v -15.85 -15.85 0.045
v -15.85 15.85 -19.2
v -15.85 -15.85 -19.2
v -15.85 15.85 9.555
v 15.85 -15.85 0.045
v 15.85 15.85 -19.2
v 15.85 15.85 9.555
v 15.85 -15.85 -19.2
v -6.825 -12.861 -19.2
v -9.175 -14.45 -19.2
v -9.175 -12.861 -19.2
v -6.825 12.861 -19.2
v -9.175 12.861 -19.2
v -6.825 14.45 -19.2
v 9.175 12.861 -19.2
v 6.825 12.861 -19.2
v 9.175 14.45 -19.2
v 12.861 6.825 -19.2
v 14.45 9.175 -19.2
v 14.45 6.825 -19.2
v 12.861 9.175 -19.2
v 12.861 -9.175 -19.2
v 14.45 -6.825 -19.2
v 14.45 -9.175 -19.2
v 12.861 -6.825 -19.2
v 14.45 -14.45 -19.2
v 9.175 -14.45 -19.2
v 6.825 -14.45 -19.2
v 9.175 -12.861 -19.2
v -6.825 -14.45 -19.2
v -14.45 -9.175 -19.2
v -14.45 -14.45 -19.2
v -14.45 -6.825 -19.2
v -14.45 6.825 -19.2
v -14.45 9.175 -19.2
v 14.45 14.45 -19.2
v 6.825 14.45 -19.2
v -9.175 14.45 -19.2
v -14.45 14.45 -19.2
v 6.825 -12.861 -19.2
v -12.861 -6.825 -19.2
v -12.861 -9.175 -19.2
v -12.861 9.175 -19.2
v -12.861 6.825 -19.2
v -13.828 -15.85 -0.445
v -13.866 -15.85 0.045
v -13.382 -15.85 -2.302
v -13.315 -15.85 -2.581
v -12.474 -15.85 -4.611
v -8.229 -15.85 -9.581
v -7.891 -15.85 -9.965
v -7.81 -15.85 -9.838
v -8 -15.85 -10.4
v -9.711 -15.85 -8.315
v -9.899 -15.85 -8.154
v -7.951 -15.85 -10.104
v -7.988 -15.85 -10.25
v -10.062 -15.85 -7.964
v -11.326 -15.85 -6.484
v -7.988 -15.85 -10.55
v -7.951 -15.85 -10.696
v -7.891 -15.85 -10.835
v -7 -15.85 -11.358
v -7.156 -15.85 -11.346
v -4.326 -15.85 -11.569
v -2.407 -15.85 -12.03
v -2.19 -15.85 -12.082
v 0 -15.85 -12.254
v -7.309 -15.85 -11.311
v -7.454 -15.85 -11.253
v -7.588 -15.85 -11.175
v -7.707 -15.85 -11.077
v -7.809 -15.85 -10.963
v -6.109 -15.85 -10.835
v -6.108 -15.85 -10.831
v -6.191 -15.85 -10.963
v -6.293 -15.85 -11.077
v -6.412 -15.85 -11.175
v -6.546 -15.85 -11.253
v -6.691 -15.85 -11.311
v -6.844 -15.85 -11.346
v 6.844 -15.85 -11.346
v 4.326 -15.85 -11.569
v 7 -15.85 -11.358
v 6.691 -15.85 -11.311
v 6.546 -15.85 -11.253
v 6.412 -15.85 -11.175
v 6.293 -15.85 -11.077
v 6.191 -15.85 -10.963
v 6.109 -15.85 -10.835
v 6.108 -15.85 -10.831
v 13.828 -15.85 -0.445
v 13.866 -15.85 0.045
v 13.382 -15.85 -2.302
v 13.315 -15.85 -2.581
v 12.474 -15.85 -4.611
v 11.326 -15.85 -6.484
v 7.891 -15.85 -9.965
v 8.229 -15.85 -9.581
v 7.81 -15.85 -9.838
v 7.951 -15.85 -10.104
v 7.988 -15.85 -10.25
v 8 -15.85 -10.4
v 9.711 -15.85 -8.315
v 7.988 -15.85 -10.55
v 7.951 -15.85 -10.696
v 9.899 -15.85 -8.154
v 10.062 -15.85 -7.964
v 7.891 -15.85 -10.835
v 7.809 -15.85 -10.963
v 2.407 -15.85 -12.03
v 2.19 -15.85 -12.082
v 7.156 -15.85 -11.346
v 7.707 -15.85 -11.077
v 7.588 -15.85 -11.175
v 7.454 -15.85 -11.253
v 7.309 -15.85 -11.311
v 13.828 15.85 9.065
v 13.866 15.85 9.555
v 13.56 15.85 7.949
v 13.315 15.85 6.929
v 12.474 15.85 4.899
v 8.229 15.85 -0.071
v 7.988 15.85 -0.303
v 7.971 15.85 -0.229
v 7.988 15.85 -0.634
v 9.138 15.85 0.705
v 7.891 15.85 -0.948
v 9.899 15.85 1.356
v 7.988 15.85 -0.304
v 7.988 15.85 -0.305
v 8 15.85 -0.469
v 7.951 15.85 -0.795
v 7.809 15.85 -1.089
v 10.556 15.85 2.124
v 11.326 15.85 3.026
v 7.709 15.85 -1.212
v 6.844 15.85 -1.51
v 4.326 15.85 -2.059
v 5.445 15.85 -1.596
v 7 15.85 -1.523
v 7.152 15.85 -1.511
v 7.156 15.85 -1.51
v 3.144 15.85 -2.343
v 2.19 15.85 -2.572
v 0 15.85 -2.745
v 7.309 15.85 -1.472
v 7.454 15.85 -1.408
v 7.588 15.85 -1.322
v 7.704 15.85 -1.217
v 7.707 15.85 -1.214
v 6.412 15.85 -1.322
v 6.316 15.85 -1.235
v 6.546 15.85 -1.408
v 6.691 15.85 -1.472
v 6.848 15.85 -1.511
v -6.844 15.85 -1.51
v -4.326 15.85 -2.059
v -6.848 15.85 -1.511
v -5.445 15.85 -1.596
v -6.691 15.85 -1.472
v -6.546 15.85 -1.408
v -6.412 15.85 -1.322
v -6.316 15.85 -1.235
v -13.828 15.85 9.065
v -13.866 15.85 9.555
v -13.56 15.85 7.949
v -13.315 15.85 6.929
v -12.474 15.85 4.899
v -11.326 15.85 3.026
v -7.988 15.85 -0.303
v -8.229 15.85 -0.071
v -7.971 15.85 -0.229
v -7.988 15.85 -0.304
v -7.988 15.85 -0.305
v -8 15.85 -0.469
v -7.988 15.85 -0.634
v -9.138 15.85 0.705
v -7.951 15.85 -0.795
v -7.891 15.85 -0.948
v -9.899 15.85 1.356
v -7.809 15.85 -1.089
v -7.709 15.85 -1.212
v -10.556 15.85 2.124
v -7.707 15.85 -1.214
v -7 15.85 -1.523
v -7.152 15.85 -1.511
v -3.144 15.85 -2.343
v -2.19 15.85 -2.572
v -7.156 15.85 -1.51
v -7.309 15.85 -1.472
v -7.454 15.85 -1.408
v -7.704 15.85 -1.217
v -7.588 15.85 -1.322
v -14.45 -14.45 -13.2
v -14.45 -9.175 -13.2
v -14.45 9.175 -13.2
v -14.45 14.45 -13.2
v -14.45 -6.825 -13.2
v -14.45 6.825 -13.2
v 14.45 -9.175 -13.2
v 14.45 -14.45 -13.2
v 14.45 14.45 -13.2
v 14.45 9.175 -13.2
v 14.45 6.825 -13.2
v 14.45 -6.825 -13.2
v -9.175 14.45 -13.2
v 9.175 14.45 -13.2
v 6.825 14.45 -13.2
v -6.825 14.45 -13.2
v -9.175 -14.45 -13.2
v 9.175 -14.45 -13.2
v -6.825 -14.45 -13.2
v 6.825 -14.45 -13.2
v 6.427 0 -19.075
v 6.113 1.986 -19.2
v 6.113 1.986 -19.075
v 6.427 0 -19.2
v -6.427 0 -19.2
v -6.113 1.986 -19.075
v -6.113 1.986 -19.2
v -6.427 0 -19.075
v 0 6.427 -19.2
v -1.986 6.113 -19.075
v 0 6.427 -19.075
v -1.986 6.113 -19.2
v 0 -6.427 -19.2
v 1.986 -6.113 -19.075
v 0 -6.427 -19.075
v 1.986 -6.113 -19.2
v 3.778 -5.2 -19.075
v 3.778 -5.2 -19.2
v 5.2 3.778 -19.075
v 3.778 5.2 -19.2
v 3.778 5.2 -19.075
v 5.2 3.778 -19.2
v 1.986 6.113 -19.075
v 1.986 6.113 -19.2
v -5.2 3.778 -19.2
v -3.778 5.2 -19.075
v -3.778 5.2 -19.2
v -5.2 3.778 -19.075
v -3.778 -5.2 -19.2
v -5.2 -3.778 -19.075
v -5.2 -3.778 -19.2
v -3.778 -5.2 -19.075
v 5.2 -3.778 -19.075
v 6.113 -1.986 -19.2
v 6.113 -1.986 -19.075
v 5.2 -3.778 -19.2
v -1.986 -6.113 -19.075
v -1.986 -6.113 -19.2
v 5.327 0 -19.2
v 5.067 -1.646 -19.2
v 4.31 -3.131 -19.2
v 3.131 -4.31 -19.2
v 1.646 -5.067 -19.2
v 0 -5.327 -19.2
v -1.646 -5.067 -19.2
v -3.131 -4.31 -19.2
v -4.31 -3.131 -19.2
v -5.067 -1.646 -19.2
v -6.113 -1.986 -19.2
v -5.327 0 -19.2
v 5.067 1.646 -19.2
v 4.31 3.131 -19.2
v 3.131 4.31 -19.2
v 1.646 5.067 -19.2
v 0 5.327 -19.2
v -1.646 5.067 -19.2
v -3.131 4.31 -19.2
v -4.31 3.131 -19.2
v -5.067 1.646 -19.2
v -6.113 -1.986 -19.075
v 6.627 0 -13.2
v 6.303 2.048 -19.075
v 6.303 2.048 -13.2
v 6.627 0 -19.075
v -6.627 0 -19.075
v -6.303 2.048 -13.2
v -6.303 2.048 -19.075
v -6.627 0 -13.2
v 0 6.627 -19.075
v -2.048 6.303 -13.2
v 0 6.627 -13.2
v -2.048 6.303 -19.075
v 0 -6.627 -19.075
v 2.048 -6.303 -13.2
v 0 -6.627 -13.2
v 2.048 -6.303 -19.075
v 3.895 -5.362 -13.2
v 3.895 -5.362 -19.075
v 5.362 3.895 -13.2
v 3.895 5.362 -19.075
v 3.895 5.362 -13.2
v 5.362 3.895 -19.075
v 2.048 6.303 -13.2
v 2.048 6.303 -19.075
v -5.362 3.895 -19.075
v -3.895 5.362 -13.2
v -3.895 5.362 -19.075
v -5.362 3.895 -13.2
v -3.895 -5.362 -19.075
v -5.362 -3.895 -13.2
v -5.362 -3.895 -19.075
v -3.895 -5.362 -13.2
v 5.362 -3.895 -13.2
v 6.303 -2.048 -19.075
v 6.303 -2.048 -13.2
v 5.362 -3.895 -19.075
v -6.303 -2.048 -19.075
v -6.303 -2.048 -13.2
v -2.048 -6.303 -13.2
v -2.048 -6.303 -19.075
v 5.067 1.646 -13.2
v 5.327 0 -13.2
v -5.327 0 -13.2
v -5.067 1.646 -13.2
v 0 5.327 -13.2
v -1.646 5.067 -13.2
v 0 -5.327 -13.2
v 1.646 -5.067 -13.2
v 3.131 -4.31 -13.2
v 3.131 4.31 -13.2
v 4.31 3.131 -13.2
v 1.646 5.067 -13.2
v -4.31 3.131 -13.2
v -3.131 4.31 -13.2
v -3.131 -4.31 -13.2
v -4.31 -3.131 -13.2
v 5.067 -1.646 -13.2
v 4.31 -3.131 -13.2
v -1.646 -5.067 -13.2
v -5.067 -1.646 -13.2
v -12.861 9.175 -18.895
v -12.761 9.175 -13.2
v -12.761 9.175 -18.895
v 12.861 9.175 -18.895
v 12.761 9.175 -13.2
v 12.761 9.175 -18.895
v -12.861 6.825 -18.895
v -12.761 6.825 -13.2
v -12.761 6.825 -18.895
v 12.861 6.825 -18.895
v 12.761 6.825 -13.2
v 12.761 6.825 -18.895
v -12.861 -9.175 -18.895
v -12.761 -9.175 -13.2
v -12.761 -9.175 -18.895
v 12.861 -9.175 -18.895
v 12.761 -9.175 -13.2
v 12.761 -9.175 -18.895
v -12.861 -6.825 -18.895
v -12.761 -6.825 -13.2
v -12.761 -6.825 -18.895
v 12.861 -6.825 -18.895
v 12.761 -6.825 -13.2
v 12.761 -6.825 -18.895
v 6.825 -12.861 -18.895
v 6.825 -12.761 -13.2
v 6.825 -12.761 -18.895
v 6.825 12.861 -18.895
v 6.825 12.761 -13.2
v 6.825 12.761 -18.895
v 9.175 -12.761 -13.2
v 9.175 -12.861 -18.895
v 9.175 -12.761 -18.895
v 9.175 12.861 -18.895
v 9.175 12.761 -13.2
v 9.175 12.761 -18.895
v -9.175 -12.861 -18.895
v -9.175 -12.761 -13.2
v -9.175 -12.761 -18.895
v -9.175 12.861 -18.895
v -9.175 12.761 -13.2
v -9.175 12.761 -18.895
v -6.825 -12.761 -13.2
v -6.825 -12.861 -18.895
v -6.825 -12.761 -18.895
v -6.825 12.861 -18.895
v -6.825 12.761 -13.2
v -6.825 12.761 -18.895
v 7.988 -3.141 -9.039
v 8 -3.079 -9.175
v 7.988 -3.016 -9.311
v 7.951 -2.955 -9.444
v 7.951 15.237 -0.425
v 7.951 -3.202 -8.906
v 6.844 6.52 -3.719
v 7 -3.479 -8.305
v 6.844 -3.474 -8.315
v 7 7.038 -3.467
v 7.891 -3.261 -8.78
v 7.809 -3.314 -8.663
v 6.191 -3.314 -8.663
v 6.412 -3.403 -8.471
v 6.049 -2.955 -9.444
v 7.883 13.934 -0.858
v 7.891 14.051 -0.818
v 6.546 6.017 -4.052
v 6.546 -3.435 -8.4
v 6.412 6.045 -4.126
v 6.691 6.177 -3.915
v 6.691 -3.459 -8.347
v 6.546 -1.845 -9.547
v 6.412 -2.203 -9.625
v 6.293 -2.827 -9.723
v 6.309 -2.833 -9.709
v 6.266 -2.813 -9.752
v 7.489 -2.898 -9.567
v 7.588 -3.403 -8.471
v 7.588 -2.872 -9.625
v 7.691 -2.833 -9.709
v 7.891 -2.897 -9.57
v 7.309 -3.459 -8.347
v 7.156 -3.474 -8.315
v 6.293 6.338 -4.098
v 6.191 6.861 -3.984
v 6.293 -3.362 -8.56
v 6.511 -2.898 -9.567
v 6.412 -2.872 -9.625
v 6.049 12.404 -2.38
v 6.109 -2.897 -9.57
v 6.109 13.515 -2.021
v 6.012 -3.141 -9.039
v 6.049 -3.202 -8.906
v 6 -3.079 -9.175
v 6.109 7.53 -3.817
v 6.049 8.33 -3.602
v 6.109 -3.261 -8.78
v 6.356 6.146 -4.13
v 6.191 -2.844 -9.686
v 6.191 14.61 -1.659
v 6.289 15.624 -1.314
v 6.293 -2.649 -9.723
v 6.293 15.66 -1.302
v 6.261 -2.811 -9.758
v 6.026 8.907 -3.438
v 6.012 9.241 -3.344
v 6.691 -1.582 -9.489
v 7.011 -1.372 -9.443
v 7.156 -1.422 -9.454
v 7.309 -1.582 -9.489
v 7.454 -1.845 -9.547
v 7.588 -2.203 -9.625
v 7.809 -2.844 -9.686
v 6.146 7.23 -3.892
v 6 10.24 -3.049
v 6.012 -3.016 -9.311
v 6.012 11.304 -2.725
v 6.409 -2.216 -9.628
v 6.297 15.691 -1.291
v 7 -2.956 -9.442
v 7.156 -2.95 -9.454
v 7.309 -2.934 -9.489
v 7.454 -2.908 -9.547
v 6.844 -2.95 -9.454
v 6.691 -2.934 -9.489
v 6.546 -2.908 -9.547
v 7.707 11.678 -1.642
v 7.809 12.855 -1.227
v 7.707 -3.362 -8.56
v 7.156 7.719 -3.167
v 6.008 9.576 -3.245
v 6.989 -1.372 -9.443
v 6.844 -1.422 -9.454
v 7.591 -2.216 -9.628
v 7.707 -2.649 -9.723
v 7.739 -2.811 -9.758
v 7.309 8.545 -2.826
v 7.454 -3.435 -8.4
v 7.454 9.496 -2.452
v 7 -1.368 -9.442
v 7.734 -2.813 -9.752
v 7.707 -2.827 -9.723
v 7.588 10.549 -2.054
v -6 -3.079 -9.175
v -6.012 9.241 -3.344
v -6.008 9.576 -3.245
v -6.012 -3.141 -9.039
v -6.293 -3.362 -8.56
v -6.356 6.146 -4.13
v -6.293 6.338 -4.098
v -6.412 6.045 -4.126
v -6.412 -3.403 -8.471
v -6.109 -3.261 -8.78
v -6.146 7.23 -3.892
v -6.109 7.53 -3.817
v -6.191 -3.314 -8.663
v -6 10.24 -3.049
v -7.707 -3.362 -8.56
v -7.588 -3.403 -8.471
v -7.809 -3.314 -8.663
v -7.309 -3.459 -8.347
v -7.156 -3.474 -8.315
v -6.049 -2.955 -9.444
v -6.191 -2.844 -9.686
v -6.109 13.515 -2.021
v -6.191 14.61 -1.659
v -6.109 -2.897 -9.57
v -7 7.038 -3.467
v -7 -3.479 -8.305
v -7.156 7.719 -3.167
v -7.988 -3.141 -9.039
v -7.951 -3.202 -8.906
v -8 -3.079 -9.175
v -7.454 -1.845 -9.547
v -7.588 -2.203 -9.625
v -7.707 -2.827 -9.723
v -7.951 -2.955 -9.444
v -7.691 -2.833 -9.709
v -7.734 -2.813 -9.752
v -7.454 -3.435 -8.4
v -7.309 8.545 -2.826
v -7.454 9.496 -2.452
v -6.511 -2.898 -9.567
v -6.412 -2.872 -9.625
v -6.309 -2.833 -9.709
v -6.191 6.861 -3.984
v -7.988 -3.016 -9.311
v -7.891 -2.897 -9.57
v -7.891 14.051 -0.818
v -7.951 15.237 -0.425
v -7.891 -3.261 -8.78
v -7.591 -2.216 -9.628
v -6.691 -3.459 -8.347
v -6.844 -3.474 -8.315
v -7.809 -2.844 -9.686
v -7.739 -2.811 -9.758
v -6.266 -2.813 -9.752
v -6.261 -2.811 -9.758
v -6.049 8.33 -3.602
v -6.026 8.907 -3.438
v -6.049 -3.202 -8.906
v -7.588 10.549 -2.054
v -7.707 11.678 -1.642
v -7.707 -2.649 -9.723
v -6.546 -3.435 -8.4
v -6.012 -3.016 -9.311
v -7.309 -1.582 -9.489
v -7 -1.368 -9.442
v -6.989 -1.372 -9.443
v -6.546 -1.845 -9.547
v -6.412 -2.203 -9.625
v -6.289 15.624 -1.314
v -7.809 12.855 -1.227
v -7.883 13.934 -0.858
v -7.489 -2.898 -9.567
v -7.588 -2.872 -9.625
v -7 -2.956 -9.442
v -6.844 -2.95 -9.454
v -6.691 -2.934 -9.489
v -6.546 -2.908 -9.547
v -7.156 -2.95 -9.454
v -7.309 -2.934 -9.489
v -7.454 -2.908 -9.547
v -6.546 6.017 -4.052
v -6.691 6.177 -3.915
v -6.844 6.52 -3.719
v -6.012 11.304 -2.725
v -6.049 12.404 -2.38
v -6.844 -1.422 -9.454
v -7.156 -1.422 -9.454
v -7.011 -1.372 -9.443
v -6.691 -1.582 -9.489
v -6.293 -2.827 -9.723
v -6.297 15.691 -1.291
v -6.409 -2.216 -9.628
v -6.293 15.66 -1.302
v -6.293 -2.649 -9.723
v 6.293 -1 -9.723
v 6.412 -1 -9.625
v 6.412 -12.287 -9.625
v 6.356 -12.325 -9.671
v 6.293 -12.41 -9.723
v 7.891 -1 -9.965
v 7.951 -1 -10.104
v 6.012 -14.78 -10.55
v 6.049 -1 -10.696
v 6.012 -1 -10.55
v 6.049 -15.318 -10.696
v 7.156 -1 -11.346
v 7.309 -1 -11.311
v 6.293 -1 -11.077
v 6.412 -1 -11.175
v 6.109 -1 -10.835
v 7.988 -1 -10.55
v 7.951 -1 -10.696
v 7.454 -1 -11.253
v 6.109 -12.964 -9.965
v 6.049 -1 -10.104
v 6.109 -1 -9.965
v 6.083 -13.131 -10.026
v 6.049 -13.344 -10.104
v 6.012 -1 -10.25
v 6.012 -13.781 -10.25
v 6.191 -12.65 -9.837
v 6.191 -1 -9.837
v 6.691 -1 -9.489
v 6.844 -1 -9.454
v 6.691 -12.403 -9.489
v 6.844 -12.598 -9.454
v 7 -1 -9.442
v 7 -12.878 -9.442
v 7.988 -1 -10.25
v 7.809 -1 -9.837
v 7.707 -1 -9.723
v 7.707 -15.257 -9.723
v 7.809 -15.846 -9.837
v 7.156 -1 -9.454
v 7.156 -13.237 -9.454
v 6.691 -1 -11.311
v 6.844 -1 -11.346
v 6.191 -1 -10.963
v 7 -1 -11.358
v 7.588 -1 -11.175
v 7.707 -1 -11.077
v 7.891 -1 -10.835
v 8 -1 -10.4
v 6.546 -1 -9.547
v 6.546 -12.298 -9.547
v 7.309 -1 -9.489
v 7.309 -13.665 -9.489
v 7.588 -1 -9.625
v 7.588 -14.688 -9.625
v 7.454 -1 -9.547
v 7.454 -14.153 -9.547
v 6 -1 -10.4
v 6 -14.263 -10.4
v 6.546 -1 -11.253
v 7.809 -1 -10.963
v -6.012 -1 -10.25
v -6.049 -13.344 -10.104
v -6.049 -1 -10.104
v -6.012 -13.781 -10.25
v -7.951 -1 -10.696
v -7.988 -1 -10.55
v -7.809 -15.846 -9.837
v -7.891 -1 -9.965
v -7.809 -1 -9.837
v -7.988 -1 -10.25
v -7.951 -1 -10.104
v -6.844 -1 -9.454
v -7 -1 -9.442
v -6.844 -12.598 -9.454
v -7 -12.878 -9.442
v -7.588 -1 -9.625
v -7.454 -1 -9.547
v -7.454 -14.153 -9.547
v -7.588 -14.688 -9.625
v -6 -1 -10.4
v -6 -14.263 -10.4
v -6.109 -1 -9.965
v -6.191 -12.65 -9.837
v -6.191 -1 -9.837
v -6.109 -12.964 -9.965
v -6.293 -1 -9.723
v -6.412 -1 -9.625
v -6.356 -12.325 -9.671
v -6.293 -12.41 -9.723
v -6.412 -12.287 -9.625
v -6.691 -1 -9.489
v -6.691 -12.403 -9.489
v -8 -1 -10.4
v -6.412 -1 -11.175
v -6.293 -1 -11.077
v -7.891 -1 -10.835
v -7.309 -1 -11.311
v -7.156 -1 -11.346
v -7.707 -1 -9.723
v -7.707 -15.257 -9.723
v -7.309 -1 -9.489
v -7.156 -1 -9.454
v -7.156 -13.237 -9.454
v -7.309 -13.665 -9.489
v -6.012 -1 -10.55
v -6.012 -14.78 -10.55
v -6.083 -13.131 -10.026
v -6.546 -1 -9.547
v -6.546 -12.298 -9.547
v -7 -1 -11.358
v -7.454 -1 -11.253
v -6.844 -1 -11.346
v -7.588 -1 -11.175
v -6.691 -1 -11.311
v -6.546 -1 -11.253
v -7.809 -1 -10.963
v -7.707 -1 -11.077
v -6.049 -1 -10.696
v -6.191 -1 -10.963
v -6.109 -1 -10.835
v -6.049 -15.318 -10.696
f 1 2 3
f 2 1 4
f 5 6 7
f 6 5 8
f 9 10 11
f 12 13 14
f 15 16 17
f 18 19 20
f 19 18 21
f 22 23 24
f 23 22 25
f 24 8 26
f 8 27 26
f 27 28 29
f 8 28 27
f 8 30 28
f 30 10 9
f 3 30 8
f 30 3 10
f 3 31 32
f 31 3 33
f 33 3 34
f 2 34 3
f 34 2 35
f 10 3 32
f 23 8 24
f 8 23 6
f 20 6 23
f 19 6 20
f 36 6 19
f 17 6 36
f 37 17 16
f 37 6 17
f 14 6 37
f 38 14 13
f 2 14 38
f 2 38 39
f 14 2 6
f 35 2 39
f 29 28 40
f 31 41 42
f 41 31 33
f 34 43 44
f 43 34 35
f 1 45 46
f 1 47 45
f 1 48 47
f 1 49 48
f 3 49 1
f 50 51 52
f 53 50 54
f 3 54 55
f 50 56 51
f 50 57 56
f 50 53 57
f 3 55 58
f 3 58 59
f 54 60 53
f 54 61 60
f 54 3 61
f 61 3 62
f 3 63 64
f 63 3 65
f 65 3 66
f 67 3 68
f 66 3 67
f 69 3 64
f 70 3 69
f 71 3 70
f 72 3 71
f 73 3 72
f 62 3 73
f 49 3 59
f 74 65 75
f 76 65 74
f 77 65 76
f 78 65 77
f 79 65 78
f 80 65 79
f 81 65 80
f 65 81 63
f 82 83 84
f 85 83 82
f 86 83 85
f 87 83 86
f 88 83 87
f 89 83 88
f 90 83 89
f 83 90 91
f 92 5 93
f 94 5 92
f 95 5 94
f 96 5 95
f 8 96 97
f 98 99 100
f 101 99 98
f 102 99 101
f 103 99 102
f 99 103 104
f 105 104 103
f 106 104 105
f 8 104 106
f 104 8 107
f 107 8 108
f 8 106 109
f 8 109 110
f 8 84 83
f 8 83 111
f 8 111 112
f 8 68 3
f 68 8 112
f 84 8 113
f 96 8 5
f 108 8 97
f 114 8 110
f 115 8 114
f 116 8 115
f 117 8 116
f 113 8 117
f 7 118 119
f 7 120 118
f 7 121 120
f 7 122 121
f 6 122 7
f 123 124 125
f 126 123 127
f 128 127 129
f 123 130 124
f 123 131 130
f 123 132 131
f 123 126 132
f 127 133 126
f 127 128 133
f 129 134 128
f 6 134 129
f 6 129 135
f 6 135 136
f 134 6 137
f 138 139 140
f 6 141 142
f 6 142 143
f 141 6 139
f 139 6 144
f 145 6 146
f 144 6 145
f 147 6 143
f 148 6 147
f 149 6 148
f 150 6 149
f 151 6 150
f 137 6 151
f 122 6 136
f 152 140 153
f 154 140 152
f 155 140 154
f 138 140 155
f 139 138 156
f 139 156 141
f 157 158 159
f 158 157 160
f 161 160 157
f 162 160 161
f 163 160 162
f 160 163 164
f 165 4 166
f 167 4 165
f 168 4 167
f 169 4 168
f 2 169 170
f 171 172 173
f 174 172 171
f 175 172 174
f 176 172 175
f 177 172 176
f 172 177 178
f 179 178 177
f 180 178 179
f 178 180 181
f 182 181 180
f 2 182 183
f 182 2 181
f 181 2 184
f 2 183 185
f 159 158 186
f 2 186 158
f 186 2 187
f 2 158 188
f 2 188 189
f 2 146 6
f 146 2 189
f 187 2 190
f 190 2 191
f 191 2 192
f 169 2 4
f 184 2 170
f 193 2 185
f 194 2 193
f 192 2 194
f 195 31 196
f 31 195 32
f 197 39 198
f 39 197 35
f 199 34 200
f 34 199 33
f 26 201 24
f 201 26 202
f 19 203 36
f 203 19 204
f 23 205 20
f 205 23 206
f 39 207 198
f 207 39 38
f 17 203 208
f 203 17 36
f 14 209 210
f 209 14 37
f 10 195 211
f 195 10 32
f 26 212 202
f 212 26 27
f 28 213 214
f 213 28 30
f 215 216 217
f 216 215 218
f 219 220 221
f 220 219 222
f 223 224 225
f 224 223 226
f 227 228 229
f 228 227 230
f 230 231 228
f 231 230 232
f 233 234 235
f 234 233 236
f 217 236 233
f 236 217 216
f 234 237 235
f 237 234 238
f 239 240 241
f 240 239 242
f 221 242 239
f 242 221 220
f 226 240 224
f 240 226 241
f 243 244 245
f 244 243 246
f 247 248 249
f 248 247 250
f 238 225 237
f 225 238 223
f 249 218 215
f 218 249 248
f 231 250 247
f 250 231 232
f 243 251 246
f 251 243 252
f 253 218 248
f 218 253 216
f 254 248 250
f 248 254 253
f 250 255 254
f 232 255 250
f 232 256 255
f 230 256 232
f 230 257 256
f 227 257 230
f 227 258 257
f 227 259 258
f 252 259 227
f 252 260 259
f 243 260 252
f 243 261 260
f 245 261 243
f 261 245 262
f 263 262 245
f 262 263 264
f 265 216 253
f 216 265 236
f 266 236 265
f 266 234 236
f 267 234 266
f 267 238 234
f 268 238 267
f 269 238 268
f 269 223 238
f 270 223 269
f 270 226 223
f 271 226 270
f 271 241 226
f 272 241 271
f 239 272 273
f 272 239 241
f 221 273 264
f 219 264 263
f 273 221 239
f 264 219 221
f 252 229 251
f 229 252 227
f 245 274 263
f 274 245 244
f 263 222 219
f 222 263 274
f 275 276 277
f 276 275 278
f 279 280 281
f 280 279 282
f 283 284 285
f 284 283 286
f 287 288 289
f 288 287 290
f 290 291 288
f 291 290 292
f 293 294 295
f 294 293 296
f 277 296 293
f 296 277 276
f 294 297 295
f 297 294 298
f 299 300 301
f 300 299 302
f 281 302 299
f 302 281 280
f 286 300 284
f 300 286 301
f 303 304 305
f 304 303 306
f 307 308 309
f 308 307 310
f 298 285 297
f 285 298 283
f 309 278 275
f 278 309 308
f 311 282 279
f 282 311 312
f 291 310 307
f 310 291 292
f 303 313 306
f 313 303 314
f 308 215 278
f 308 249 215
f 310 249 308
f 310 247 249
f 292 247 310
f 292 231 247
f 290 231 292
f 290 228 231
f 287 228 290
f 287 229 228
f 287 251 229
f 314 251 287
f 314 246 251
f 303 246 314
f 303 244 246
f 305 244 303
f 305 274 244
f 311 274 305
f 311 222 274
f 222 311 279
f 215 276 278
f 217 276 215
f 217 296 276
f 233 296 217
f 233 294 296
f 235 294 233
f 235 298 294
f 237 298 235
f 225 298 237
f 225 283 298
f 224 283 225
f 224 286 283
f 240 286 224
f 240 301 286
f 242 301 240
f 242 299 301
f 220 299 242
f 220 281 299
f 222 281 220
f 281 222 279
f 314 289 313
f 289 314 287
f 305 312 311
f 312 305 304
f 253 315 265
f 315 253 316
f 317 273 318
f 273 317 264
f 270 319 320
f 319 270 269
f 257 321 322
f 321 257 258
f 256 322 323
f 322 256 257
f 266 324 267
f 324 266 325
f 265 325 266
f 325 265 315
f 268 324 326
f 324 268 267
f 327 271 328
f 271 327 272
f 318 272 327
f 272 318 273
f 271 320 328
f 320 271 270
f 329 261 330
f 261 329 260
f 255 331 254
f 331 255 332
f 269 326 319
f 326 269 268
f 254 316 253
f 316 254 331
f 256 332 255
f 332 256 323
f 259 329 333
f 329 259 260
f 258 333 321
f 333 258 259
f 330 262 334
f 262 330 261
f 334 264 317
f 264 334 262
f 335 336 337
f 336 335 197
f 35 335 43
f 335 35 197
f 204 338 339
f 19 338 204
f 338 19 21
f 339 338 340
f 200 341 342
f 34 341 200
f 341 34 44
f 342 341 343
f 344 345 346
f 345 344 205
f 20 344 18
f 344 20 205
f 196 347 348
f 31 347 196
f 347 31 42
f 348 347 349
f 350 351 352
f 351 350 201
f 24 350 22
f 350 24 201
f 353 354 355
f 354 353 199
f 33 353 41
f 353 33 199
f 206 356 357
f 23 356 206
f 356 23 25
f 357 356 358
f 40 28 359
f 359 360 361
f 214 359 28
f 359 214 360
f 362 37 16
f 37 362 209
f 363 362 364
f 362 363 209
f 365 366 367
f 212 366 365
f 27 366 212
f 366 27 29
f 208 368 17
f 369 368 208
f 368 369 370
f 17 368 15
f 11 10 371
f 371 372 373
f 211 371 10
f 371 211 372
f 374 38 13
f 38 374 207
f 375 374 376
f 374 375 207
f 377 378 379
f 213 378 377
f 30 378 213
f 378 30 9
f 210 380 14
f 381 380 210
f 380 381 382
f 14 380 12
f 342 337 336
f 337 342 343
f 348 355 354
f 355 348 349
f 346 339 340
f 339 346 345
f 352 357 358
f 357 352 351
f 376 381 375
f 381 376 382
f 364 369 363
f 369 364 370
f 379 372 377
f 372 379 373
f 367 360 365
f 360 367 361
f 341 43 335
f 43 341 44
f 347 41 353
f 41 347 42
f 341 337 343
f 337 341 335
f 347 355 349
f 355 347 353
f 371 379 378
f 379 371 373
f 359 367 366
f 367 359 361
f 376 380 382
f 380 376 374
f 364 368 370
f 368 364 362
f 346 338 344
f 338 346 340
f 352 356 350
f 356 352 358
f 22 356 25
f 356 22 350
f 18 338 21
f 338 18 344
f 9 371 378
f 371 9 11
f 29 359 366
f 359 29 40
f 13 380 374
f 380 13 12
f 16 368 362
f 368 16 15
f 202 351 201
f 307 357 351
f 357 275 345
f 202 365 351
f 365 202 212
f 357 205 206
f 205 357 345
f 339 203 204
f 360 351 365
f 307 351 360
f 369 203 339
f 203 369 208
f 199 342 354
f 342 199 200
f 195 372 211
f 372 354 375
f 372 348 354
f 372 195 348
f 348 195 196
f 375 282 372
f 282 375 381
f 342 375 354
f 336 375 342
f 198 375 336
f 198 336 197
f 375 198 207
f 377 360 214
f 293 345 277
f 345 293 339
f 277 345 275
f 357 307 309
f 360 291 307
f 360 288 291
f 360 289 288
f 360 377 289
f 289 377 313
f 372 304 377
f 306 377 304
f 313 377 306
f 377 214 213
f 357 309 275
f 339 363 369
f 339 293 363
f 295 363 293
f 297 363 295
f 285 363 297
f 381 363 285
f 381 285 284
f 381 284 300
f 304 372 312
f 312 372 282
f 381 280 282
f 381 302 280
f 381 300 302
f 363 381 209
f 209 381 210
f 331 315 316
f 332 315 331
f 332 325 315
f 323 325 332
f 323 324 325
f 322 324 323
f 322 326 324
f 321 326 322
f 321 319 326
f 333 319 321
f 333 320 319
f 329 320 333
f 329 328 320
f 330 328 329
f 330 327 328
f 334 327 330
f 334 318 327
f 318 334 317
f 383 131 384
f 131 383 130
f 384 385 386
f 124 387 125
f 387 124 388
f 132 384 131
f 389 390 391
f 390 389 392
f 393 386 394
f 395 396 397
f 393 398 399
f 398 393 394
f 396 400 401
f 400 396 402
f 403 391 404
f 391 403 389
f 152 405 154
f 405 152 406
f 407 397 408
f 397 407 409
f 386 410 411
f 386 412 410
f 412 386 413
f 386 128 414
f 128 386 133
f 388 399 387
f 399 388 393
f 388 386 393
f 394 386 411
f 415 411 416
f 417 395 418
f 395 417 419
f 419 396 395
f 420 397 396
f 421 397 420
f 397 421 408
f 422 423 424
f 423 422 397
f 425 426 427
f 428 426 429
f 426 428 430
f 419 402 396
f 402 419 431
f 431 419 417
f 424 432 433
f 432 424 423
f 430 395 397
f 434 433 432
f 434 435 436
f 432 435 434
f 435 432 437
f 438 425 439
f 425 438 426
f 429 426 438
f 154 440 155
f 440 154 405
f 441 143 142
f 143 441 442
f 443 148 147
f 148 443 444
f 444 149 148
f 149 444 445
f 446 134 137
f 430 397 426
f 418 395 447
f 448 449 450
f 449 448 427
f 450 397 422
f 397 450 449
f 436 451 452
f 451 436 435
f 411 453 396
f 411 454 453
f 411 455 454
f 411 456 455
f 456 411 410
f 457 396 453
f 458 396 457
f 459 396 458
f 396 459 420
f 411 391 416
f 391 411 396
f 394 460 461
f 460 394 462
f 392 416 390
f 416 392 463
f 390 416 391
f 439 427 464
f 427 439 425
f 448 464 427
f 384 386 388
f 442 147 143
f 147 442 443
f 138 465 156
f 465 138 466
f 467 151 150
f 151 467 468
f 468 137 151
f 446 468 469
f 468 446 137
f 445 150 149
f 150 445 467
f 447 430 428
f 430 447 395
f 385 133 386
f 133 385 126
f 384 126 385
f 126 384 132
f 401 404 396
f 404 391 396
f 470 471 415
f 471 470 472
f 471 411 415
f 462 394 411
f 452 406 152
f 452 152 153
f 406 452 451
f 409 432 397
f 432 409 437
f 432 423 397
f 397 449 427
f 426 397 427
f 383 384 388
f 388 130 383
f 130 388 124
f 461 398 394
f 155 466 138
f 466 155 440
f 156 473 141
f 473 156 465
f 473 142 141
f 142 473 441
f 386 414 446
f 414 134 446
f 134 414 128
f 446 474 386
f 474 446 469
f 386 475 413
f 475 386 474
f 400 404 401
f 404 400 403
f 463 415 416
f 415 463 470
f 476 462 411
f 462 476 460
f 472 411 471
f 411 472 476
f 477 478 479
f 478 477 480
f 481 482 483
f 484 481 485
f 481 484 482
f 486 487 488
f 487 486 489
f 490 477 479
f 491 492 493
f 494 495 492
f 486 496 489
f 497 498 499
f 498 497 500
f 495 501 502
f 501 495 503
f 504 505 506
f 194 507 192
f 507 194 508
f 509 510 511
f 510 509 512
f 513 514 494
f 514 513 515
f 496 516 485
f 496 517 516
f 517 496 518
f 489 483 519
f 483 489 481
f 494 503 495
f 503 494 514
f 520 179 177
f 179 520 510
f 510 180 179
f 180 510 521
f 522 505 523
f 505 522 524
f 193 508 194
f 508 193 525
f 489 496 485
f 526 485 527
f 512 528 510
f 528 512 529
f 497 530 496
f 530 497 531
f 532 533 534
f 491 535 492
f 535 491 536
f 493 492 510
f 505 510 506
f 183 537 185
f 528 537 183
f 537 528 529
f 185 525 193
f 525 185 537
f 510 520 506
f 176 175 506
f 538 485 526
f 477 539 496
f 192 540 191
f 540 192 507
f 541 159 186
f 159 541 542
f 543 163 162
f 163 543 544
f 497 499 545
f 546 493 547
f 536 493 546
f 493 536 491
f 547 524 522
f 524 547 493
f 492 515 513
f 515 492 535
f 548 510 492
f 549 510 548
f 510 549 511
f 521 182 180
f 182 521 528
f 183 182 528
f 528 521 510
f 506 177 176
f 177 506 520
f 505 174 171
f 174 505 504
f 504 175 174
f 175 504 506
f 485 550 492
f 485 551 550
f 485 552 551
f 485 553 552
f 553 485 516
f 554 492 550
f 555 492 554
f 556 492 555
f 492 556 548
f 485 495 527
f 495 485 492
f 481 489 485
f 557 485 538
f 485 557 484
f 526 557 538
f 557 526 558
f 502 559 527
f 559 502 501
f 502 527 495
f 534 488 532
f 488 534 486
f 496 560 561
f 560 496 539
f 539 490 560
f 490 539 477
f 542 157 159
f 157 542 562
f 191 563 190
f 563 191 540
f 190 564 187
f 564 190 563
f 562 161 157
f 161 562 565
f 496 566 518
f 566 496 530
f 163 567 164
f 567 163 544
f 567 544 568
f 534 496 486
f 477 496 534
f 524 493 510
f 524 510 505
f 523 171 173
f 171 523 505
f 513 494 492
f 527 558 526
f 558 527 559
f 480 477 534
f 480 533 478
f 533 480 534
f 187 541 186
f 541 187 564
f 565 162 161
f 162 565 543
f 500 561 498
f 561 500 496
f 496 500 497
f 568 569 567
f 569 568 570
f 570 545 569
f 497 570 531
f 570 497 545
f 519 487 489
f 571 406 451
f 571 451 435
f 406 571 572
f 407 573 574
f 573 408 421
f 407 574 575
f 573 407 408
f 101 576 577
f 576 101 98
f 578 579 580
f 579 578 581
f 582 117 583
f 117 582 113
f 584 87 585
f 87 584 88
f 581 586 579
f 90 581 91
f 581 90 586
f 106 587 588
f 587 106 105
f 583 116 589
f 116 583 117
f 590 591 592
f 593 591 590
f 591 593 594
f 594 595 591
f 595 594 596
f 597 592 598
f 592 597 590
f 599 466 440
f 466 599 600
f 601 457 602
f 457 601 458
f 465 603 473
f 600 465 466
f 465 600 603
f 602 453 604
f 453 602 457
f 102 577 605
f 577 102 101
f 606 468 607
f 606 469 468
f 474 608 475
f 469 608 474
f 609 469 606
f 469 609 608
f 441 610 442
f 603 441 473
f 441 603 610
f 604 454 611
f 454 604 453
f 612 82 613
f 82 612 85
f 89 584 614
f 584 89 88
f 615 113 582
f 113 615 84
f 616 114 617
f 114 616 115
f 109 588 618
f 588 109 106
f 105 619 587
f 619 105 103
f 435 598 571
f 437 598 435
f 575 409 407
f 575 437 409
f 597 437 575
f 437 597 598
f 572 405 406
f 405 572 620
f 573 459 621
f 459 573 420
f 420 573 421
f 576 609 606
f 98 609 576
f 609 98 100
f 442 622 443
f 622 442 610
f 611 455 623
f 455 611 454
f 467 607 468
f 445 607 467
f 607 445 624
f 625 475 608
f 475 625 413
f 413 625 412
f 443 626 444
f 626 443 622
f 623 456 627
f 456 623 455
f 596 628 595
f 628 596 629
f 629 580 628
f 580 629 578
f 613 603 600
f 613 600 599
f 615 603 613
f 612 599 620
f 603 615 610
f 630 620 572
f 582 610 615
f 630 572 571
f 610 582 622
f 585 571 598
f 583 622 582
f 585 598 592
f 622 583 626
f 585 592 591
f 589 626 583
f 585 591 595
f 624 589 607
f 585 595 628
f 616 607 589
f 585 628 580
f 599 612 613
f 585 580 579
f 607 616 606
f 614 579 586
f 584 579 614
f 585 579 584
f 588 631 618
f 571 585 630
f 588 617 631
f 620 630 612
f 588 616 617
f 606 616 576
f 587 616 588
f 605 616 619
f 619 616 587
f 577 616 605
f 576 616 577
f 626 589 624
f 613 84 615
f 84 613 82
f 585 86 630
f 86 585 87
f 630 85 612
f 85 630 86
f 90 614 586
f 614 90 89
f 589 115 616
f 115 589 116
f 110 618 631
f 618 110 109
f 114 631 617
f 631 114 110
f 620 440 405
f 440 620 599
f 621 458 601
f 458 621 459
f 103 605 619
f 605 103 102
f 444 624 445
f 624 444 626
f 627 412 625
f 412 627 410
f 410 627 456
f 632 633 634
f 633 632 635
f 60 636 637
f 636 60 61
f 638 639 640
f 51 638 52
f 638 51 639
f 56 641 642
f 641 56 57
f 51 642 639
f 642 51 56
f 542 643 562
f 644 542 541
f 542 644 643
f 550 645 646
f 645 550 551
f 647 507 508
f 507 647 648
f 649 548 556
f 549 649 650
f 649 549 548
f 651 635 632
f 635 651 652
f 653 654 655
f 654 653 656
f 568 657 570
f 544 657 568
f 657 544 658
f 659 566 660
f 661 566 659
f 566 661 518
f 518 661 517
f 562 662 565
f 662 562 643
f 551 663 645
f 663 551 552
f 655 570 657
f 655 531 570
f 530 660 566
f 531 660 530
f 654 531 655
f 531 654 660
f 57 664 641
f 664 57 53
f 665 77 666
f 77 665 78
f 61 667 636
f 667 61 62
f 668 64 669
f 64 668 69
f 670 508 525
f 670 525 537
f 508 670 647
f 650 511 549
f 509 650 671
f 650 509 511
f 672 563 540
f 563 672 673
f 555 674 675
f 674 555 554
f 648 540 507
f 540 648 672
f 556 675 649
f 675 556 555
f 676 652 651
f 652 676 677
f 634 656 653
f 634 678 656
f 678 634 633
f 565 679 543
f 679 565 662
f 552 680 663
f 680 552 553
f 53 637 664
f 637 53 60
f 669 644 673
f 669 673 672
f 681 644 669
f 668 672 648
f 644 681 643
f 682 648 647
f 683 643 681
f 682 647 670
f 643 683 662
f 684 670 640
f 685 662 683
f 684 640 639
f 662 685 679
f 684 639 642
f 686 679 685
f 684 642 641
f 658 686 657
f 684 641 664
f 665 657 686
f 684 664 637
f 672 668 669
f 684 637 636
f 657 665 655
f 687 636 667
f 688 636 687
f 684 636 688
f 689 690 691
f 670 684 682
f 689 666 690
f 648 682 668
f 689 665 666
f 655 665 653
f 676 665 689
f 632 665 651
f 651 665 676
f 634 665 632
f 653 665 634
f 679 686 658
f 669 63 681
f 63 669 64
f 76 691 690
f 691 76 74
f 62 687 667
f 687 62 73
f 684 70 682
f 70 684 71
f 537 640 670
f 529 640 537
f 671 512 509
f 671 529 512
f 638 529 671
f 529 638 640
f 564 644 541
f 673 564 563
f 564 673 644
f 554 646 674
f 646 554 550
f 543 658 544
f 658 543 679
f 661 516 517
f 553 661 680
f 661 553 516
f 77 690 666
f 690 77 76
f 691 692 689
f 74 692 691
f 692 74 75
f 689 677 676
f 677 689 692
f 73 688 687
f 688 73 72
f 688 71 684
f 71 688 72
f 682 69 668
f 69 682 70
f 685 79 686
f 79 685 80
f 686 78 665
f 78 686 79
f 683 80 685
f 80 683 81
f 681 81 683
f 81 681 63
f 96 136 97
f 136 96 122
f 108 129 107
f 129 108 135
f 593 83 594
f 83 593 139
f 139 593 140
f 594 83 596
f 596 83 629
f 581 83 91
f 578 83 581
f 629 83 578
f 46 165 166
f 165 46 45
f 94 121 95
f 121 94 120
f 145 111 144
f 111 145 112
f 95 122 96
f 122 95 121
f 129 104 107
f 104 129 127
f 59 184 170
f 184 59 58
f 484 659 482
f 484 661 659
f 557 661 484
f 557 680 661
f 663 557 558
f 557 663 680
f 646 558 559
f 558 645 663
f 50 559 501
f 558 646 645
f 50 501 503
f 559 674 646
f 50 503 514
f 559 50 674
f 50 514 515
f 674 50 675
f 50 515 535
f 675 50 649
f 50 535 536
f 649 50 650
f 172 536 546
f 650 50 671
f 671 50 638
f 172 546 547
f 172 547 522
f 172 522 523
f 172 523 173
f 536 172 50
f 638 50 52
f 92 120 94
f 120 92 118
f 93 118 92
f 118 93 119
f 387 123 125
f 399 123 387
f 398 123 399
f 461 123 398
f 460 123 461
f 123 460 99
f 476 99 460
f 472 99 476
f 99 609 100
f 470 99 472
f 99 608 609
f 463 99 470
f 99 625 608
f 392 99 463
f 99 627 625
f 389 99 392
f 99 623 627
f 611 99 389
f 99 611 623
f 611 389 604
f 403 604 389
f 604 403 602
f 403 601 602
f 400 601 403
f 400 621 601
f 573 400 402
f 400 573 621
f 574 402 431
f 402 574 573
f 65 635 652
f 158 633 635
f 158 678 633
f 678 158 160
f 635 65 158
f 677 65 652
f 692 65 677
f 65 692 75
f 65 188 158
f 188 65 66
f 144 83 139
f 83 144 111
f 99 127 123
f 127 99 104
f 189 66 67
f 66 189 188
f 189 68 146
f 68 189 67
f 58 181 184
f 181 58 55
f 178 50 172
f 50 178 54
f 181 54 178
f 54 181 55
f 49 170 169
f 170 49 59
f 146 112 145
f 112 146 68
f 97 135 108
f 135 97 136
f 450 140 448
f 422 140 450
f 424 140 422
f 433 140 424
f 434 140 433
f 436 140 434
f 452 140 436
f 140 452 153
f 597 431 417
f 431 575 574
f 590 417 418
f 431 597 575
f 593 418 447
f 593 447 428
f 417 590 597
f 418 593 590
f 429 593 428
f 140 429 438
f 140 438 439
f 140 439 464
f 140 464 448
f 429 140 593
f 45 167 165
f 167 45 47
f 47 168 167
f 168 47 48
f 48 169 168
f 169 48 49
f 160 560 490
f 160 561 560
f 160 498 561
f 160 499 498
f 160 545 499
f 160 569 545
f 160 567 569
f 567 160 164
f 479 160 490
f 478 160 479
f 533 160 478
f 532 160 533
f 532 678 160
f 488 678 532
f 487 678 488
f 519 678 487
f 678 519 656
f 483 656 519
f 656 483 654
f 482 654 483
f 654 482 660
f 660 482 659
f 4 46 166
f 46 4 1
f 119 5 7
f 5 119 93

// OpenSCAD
// file: duplo-block-lib.scad
// Duplo-compatible block library (C) by Joachim Eibl 2013
// Licence: CC BY-NC-SA 3.0 
// Creative Commons: attribution, non commercial, share alike
// See: http://creativecommons.org/licenses/by-nc-sa/3.0/
// This lib is derived from http://www.thingiverse.com/thing:1778
// LEGO and DUPLO are trademarks of the Lego group.


//the duplo itself
// parameters are: 
// width: 1 =standard 4x4 duplo width.
// length: 1= standard 4x4 duplo length
// height: 1= minimal duplo height

duploRaster = 16;
dr = duploRaster;
duploHeight=duploRaster * 0.6;

// nibble radius: a square brick with size (dr x dr) turned by 45° on a neighbor nibble fits exactly:
duploNibbleRadius = dr * (1-1/1.41421) +0.1; // = 4.686+0.1,  dr*(1-1/sqrt(2))
duploBottomNibbleRadius = dr*(1.41421-1); //= dr * 1.41421 / 2  - duploNibbleRadius = 6.6277
duploGapBottom = -0.05; // recommended range from -0.1 to 0.1 with lower values for tighter fit.
bottomGapHeight = -0.05;
gapBetweenBricks = 0.3; // real duplo probably has 0.4
duploWall = 1.55;// For duplo compatibility this is not so important, only if smaller lego should fit.
                   // (dr/2 - duploNibbleRadius - gapBetweenBricks)/2 = 1.507
firstLayerGap = 0.2; // for easier fit and to compensate for printers that print a thicker bottom
firstLayerGapHeight = 0.3;

quality = 60; // quality: low/fast (e.g. 10) for design, high/slow (e.g. 50) for final rendering 

// if some pieces are missing: "Edit"->"Preferences"->"Advanced"->"Turn off rendering at: " [1000000] "elements"

//duplo(2,2,8,true,false);

module duplo(width,length,height,topNibbles,bottomHoles) {   
   //size definitions
   ns = duploRaster / 2;  //nibble start offset
   nbo = duploRaster;  // nibble bottom offset
   effWidth = width * duploRaster-gapBetweenBricks;
   effLength = length*duploRaster-gapBetweenBricks;
   littleWallThickness = 2.35; // 1.35 is standard but bigger is better for printing 
    
   // the cube
   difference() {
      cube([effWidth,effLength,height*duploHeight],true);
      translate([0,0,-height*duploHeight/2])    
        cube([width*duploRaster - 2*duploWall,length*duploRaster-2*duploWall,duploHeight*2-2*duploWall],true);
   }

   if(topNibbles) {
      duploTopNibbles(width, length, height);
   }

   if(bottomHoles) {
      difference() {
         cube([effWidth,effLength,height*duploHeight],true);
      
         //nibbles on bottom
         for(j=[1:length]) {
            for (i = [1:width]) {
               // disabled
               translate([ns-(i-width*0.5)*dr,ns-(j-length*0.5)*dr,-0.1-height*duploHeight/2]) {
                  cylinder(r=duploNibbleRadius+0.2,h=6,center=false,$fn = quality);
                  cylinder(r=duploNibbleRadius+0.4,h=0.5,center=false,$fn = quality);
               }
            }
         }
      }
   } else {
     //nibble bottom
     if( length > 1 && width > 1 ) {
       for(j=[1:length-1]) {
         for (i = [1:width-1]) {
           translate([(i-width*0.5)*dr,(j-length*0.5)*dr,0]) duplobottomnibble(height*duploHeight);
         }
       }
     }
   
     //little walls inside
     difference() {
       union() {
         for(j=[1:length]) {   
           translate([0,ns-(j-length/2)*dr,0 ]) cube([effWidth,littleWallThickness,height*duploHeight],true);
         }
         for (i = [1:width]) {
           translate([ns-(i-width/2)*dr,0,0 ]) cube([littleWallThickness,effLength,height*duploHeight],true);
         }
         for(j=[1:length-1]) {   
          if (width==1)
            translate([0,ns-(j-length/2+0.5)*dr,0 ]) cube([effWidth,littleWallThickness,height*duploHeight],true);
         }
       }
       if ( width > 1 ) {
         cube([(width-1)*dr + duploNibbleRadius*2+duploGapBottom,(length-1)*dr+duploNibbleRadius*2+duploGapBottom,height*duploHeight+2],true);
         translate([0,0,-height*duploHeight/2+firstLayerGapHeight/2]) 
         cube([(width-1)*dr + duploNibbleRadius*2+duploGapBottom+firstLayerGap,(length-1)*dr+duploNibbleRadius*2+duploGapBottom+0.2,firstLayerGapHeight+0.01],true);
       } else {
         for(j=[1:length]) {   
            translate([0,(+j-length/2 - 0.5)*dr,0 ])
               cube([ duploNibbleRadius*2+duploGapBottom,duploNibbleRadius*2+duploGapBottom,height*duploHeight+2],true);
         }
       }
     }
   }
}

//nibbles on top
module duploTopNibbles(width=2, length=2, height=1) {
  ns = duploRaster / 2;  //nibble start offset
  for(j=[1:length]) {
    for (i = [1:width]) {
      // disabled
      translate([ns-(i-width*0.5)*dr,ns-(j-length*0.5)*dr,6.9+(height-1)*duploHeight/2]) duplonibble();
    }
  }
}

module duplonibble()
{
   difference() {
      union() {
         translate([0,0,-0.5/2]) cylinder(r=duploNibbleRadius,h=4.5-1,center=true,$fn = quality);
         translate([0,0,4.5/2-1]) cylinder(r1=duploNibbleRadius,r2=duploNibbleRadius-0.4,h=1,$fn = quality);
      }
      cylinder(r=duploNibbleRadius-1.3,h=5.5,center=true,$fn = quality);
   }
}

module duplobottomnibble(height)
{
   difference() {
      union(){
         cylinder(r=duploBottomNibbleRadius-firstLayerGap,h=height,center=true,$fn = quality);
         translate([0,0,bottomGapHeight/2]) cylinder(r=duploBottomNibbleRadius,h=height-firstLayerGapHeight,center=true,$fn = quality);
      }
      cylinder(r=duploBottomNibbleRadius-1.3,h=height+1,center=true,$fn = quality);
   }

}
// main file
// Duplo-compatible marble run pieces (C) by Joachim Eibl 2013
// Licence: CC BY-NC-SA 3.0 
// Creative Commons: attribution, non commercial, share alike
// See: http://creativecommons.org/licenses/by-nc-sa/3.0/
// LEGO and DUPLO are trademarks of the Lego group.

// Version 2 (added longRampPiece and cosinusSlopedRampPiece)
// Turn, Half Ramp, Cones added by Thomas Rauscher

// The duplo-block-lib is derived from http://www.thingiverse.com/thing:1778
include <duplo-block-lib.scad>
include <duplo-marblerun.scad>

quality = 20; // quality: low/fast (e.g. 10) for design, high/slow (e.g. 50) for final rendering 
innerRadius=14*dr/16;

// wires
wireRadius=2;
wireTX=7;
wireTZ=-2;
clipTX=1.45;

//straightPieceWires(2);
ramp(2,4, true);
// wireClip();

module wireClip() {
 difference() {  
   union() {
     translate([wireTX+clipTX,-clipTX,0]) cylinder(4,r=wireRadius*1.2,$fn = quality*2);
     translate([-wireTX-clipTX,-clipTX,0]) cylinder(4,r=wireRadius*1.2,$fn = quality*2);
     translate([wireTX,0,0]) cylinder(4,r=wireRadius*1.8,$fn = quality*2);
     translate([-wireTX,0,0]) cylinder(4,r=wireRadius*1.8,$fn = quality*2);
     
     difference() {  
       translate([0,5,0]) cylinder(d=1.8,r=innerRadius*0.7,$fn = quality*2);
       translate([-20,-0.5,0]) cube([40,40,10]);
     }
   }
   translate([wireTX+clipTX,-clipTX,0]) cylinder(4,wireRadius*0.6,wireRadius*0.6,$fn = quality*2);
   translate([-wireTX-clipTX,-clipTX,0]) cylinder(4,wireRadius*0.6,wireRadius*0.6,$fn = quality*2);
   translate([wireTX,0,0]) cylinder(4,r=wireRadius*0.95,$fn = quality*2);
   translate([-wireTX,0,0]) cylinder(4,r=wireRadius*0.95,$fn = quality*2);
   translate([0,4.4,0]) cylinder(4,r=innerRadius*0.5,$fn = quality*2);
   translate([0,6.4,0]) cylinder(4,r=innerRadius*0.6,$fn = quality*2);
 }
}

module ramp(length=2, height=4, wires=false) {
   angle = 16.699; // 180 / 3.14159 * atan(0.5*duploHeight/duploRaster);
   vscale = 0.9578; // cos(angle);
   
   difference() {
      duploMarbleRunBase(2,length,height,false,false);      
      union() {
         translate([0,((4-length)/2)*dr+1, duploHeight+2]) rotate([90+angle,0,0]) scale([1,vscale,1])
                  cylinder( duploRaster*6, innerRadius, innerRadius,, center=true, $fn = quality*2 );     
         translate([-2*dr,length*dr+0, (length/2) * 1.5*duploHeight+0]) rotate([90+angle,0,0])
                  cube( [duploRaster*4,duploRaster*4,duploRaster*2*length] );
         
          if(wires) {
             translate([wireTX,((4-length)/2)*dr, duploHeight-10]) rotate([90+angle+8,0,0]) scale([1,vscale,1])
                cylinder(h=duploRaster+5, d=wireRadius, $fn = quality*2);
             translate([-wireTX,((4-length)/2)*dr, duploHeight-10]) rotate([90+angle+8,0,0]) scale([1,vscale,1])
                cylinder(duploRaster+5, d=wireRadius, $fn = quality*2);
             translate([wireTX,-((4-length)/2)*dr-1, duploHeight-20]) rotate([90,0,180]) scale([1,vscale,1])
                cylinder(duploRaster, d=wireRadius, $fn = quality*2);
             translate([-wireTX,-((4-length)/2)*dr-1, duploHeight-20]) rotate([90,0,180]) scale([1,vscale,1])
                cylinder(duploRaster, d=wireRadius, $fn = quality*2);
         }
      }
   }
}
